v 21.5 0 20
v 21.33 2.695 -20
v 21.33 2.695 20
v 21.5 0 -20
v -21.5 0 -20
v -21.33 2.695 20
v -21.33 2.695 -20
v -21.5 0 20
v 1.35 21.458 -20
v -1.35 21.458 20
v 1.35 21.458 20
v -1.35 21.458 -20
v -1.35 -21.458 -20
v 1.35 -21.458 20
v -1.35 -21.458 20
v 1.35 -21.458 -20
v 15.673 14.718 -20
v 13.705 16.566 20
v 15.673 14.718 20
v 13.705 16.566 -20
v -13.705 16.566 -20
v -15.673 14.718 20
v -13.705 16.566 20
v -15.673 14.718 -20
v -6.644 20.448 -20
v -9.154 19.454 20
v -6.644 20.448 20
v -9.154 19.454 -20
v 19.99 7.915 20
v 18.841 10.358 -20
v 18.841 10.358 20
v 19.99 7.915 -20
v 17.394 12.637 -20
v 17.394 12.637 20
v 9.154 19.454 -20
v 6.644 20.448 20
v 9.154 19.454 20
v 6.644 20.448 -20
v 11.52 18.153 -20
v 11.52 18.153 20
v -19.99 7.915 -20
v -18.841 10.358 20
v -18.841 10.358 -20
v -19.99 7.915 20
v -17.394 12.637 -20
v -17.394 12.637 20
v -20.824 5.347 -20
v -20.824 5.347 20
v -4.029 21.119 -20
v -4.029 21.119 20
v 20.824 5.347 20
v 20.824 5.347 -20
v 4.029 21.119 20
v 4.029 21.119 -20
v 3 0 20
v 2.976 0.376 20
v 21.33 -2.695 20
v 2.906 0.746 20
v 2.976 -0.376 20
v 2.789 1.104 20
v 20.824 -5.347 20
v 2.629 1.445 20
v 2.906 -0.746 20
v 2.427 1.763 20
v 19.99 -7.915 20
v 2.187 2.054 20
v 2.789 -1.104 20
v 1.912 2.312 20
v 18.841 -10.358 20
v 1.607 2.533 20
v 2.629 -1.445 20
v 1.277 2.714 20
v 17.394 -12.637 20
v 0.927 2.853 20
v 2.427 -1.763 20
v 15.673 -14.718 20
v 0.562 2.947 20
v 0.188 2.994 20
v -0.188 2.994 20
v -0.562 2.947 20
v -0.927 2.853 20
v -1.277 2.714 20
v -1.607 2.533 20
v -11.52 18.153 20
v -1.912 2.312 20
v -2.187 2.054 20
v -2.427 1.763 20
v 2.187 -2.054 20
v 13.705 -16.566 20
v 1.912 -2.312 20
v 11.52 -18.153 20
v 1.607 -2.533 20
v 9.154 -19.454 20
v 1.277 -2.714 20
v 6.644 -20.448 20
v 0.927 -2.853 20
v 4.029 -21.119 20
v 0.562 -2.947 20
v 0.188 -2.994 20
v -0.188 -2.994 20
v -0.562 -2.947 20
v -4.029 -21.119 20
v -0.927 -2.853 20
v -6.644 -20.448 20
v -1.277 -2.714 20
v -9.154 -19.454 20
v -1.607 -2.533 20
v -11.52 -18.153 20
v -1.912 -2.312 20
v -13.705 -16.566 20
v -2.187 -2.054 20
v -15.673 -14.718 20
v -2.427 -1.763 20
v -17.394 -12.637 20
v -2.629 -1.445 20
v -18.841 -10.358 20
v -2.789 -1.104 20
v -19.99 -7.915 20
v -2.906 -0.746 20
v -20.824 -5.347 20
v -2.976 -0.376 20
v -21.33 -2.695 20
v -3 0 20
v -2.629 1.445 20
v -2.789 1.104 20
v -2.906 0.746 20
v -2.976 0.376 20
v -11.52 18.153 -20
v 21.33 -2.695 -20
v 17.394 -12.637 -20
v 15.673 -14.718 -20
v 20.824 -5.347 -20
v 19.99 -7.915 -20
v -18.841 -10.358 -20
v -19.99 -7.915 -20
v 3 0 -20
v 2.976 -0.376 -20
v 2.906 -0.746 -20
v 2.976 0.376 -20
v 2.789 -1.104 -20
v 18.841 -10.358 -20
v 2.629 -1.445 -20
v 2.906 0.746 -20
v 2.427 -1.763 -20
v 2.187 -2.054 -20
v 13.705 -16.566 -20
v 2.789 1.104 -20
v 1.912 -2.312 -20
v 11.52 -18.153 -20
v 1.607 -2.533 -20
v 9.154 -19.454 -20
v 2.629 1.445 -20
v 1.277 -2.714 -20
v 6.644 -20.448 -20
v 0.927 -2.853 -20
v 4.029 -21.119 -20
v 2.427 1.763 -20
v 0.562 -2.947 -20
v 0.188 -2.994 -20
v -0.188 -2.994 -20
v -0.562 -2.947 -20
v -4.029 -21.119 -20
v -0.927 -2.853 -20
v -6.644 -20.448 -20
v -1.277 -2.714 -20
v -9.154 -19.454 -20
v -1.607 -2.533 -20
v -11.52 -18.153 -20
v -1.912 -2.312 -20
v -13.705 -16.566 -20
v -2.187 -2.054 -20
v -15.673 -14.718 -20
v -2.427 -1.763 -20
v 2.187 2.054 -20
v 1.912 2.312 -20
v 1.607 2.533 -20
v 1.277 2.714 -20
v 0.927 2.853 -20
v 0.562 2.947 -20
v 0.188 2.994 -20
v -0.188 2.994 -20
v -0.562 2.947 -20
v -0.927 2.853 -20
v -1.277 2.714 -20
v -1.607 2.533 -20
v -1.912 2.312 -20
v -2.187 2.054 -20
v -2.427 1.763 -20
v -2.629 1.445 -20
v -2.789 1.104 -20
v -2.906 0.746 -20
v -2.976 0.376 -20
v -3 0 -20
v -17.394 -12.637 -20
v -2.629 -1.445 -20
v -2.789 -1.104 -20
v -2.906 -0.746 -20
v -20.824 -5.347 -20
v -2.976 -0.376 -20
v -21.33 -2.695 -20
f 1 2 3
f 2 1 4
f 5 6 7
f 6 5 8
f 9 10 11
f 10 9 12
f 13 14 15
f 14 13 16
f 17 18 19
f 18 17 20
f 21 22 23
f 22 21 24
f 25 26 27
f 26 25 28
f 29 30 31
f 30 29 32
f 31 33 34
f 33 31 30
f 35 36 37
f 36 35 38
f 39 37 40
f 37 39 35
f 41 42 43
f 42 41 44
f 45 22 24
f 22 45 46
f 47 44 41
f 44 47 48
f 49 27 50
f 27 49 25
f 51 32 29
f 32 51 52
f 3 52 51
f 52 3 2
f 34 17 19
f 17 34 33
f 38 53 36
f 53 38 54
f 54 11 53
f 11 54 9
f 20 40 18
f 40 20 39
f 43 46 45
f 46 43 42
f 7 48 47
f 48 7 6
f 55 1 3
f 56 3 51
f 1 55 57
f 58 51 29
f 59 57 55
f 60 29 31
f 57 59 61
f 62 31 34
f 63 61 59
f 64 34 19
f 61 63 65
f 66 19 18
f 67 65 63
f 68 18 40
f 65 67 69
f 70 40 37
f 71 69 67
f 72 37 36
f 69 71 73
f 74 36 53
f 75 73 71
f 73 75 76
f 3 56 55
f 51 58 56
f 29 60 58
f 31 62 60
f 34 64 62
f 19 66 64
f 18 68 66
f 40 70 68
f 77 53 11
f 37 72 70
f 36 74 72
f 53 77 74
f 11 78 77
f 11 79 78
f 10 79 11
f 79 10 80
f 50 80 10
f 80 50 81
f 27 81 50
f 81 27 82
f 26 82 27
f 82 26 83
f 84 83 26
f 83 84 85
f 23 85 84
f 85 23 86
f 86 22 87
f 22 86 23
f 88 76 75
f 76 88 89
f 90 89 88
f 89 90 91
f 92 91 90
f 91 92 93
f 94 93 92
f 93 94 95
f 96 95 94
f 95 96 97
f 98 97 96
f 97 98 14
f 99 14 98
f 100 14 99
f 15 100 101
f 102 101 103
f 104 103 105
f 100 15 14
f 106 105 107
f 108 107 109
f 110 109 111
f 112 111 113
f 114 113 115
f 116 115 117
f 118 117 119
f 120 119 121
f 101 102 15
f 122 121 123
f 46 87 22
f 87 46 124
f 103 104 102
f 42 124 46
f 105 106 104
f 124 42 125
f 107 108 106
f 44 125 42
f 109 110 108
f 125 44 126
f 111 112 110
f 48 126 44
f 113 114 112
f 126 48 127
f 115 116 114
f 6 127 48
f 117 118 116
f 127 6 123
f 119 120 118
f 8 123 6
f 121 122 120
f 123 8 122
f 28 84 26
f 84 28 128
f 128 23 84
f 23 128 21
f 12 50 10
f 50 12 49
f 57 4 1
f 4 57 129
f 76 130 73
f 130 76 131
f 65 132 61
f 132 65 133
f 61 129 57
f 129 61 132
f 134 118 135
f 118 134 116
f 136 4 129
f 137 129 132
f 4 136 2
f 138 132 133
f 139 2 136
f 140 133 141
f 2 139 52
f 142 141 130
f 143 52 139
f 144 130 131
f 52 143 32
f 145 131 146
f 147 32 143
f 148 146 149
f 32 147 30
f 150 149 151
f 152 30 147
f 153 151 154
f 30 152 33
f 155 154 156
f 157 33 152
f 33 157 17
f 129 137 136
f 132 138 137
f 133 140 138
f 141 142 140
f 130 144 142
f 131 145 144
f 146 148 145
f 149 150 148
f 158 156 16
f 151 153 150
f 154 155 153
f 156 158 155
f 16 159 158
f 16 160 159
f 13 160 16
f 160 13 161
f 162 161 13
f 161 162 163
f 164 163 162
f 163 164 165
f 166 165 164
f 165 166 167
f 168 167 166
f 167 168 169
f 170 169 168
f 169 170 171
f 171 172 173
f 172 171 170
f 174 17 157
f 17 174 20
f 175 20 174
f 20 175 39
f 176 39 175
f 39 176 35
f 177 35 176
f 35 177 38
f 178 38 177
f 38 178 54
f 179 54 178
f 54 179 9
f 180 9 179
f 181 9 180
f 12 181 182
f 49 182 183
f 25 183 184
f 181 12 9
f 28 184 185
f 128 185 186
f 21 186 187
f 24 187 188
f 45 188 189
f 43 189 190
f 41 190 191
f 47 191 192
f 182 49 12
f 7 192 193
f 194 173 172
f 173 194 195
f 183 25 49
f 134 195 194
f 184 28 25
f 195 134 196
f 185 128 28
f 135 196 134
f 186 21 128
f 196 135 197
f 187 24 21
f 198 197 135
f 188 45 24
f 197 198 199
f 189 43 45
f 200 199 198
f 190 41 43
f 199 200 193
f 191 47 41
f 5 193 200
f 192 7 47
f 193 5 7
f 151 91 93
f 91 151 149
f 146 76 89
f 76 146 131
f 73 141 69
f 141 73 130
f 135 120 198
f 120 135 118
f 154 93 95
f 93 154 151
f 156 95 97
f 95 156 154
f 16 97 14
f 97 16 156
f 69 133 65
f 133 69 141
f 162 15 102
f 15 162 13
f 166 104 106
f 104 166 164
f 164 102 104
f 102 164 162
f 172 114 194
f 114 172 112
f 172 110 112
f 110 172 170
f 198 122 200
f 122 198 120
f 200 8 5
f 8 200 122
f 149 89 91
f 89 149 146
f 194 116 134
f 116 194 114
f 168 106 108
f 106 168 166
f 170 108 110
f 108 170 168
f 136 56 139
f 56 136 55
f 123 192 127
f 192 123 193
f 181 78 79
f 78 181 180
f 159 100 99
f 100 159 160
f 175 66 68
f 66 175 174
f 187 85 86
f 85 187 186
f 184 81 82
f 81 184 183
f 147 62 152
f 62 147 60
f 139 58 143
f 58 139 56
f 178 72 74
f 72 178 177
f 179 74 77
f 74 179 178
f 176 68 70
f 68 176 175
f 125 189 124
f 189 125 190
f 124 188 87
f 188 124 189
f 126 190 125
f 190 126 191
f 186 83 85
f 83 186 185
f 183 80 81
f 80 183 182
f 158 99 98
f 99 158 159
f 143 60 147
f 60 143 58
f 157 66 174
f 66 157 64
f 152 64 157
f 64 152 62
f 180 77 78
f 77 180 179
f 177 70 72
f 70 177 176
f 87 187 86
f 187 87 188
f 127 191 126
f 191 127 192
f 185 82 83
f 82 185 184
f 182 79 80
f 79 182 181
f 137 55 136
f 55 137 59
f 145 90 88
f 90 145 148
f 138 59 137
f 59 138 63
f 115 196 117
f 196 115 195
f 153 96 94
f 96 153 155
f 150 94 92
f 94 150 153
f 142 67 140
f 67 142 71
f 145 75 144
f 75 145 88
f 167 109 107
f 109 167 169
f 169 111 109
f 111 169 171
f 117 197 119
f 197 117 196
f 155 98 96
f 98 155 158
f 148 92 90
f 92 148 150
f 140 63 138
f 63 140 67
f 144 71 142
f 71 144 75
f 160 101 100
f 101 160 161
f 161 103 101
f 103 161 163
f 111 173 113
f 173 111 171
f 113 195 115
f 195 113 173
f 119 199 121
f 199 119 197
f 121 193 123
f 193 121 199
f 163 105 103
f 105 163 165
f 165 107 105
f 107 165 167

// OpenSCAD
$fn = 50;


difference() {
	union() {
		translate(v = [0, 0, -20.0000000000]) {
			cylinder(h = 40, r = 21.5000000000);
		}
	}
	union() {
		translate(v = [0, 0, -100.0000000000]) {
			cylinder(h = 200, r = 3);
		}
	}
}
